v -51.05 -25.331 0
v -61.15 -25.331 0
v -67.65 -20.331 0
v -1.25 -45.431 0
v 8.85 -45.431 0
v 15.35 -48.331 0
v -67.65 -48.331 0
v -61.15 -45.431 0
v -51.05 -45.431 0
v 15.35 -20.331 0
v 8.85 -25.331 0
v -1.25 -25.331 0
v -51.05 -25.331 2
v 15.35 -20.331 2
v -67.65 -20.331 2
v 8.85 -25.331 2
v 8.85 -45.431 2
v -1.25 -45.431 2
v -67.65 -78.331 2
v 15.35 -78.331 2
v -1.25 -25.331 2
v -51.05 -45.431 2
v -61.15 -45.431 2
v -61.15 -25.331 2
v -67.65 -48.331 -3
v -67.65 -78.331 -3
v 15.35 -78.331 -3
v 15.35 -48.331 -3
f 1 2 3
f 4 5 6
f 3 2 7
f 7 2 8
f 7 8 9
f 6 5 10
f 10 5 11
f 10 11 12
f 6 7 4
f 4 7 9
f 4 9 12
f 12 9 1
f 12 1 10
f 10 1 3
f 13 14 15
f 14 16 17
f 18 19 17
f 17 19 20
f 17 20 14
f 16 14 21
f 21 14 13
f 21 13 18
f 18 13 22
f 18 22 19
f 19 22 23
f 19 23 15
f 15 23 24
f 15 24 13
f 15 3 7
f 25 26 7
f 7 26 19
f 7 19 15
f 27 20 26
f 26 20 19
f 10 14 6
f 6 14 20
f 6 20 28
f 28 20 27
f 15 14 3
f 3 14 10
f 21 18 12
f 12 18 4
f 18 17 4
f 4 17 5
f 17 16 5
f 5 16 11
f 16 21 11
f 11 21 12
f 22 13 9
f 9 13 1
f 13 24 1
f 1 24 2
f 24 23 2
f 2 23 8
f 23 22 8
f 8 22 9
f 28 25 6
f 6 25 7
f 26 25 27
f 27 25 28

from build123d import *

# Parameters (mm, degrees)
SKETCH_1_W      = 83
SKETCH_1_H      = 58
SKETCH_1_W_2    = 10.1
SKETCH_1_H_2    = 20.1
EXTRUDE_1_DEPTH = 2
SKETCH_2_W      = 83
SKETCH_2_H      = 30
EXTRUDE_2_DEPTH = 3


with BuildPart() as part:
    # 草图1 → 凸台-拉伸1 (new body)
    with BuildSketch(Plane.XY):
        with Locations((-26.149980732, -49.330690158)):
            Rectangle(SKETCH_1_W, SKETCH_1_H)
        with Locations((3.800019268, -35.380690158)):
            Rectangle(SKETCH_1_W_2, SKETCH_1_H_2, mode=Mode.SUBTRACT)
        with Locations((-56.099980732, -35.380690158)):
            Rectangle(SKETCH_1_W_2, SKETCH_1_H_2, mode=Mode.SUBTRACT)
    extrude(amount=EXTRUDE_1_DEPTH)

    # 草图2 → 凸台-拉伸2 (add)
    with BuildSketch(Plane(origin=(0, 0, 0), x_dir=(-1, 0, 0), z_dir=(0, 0, -1))):
        with Locations((26.149980732, -63.330690158)):
            Rectangle(SKETCH_2_W, SKETCH_2_H)
    extrude(amount=EXTRUDE_2_DEPTH)


solid = part.part
